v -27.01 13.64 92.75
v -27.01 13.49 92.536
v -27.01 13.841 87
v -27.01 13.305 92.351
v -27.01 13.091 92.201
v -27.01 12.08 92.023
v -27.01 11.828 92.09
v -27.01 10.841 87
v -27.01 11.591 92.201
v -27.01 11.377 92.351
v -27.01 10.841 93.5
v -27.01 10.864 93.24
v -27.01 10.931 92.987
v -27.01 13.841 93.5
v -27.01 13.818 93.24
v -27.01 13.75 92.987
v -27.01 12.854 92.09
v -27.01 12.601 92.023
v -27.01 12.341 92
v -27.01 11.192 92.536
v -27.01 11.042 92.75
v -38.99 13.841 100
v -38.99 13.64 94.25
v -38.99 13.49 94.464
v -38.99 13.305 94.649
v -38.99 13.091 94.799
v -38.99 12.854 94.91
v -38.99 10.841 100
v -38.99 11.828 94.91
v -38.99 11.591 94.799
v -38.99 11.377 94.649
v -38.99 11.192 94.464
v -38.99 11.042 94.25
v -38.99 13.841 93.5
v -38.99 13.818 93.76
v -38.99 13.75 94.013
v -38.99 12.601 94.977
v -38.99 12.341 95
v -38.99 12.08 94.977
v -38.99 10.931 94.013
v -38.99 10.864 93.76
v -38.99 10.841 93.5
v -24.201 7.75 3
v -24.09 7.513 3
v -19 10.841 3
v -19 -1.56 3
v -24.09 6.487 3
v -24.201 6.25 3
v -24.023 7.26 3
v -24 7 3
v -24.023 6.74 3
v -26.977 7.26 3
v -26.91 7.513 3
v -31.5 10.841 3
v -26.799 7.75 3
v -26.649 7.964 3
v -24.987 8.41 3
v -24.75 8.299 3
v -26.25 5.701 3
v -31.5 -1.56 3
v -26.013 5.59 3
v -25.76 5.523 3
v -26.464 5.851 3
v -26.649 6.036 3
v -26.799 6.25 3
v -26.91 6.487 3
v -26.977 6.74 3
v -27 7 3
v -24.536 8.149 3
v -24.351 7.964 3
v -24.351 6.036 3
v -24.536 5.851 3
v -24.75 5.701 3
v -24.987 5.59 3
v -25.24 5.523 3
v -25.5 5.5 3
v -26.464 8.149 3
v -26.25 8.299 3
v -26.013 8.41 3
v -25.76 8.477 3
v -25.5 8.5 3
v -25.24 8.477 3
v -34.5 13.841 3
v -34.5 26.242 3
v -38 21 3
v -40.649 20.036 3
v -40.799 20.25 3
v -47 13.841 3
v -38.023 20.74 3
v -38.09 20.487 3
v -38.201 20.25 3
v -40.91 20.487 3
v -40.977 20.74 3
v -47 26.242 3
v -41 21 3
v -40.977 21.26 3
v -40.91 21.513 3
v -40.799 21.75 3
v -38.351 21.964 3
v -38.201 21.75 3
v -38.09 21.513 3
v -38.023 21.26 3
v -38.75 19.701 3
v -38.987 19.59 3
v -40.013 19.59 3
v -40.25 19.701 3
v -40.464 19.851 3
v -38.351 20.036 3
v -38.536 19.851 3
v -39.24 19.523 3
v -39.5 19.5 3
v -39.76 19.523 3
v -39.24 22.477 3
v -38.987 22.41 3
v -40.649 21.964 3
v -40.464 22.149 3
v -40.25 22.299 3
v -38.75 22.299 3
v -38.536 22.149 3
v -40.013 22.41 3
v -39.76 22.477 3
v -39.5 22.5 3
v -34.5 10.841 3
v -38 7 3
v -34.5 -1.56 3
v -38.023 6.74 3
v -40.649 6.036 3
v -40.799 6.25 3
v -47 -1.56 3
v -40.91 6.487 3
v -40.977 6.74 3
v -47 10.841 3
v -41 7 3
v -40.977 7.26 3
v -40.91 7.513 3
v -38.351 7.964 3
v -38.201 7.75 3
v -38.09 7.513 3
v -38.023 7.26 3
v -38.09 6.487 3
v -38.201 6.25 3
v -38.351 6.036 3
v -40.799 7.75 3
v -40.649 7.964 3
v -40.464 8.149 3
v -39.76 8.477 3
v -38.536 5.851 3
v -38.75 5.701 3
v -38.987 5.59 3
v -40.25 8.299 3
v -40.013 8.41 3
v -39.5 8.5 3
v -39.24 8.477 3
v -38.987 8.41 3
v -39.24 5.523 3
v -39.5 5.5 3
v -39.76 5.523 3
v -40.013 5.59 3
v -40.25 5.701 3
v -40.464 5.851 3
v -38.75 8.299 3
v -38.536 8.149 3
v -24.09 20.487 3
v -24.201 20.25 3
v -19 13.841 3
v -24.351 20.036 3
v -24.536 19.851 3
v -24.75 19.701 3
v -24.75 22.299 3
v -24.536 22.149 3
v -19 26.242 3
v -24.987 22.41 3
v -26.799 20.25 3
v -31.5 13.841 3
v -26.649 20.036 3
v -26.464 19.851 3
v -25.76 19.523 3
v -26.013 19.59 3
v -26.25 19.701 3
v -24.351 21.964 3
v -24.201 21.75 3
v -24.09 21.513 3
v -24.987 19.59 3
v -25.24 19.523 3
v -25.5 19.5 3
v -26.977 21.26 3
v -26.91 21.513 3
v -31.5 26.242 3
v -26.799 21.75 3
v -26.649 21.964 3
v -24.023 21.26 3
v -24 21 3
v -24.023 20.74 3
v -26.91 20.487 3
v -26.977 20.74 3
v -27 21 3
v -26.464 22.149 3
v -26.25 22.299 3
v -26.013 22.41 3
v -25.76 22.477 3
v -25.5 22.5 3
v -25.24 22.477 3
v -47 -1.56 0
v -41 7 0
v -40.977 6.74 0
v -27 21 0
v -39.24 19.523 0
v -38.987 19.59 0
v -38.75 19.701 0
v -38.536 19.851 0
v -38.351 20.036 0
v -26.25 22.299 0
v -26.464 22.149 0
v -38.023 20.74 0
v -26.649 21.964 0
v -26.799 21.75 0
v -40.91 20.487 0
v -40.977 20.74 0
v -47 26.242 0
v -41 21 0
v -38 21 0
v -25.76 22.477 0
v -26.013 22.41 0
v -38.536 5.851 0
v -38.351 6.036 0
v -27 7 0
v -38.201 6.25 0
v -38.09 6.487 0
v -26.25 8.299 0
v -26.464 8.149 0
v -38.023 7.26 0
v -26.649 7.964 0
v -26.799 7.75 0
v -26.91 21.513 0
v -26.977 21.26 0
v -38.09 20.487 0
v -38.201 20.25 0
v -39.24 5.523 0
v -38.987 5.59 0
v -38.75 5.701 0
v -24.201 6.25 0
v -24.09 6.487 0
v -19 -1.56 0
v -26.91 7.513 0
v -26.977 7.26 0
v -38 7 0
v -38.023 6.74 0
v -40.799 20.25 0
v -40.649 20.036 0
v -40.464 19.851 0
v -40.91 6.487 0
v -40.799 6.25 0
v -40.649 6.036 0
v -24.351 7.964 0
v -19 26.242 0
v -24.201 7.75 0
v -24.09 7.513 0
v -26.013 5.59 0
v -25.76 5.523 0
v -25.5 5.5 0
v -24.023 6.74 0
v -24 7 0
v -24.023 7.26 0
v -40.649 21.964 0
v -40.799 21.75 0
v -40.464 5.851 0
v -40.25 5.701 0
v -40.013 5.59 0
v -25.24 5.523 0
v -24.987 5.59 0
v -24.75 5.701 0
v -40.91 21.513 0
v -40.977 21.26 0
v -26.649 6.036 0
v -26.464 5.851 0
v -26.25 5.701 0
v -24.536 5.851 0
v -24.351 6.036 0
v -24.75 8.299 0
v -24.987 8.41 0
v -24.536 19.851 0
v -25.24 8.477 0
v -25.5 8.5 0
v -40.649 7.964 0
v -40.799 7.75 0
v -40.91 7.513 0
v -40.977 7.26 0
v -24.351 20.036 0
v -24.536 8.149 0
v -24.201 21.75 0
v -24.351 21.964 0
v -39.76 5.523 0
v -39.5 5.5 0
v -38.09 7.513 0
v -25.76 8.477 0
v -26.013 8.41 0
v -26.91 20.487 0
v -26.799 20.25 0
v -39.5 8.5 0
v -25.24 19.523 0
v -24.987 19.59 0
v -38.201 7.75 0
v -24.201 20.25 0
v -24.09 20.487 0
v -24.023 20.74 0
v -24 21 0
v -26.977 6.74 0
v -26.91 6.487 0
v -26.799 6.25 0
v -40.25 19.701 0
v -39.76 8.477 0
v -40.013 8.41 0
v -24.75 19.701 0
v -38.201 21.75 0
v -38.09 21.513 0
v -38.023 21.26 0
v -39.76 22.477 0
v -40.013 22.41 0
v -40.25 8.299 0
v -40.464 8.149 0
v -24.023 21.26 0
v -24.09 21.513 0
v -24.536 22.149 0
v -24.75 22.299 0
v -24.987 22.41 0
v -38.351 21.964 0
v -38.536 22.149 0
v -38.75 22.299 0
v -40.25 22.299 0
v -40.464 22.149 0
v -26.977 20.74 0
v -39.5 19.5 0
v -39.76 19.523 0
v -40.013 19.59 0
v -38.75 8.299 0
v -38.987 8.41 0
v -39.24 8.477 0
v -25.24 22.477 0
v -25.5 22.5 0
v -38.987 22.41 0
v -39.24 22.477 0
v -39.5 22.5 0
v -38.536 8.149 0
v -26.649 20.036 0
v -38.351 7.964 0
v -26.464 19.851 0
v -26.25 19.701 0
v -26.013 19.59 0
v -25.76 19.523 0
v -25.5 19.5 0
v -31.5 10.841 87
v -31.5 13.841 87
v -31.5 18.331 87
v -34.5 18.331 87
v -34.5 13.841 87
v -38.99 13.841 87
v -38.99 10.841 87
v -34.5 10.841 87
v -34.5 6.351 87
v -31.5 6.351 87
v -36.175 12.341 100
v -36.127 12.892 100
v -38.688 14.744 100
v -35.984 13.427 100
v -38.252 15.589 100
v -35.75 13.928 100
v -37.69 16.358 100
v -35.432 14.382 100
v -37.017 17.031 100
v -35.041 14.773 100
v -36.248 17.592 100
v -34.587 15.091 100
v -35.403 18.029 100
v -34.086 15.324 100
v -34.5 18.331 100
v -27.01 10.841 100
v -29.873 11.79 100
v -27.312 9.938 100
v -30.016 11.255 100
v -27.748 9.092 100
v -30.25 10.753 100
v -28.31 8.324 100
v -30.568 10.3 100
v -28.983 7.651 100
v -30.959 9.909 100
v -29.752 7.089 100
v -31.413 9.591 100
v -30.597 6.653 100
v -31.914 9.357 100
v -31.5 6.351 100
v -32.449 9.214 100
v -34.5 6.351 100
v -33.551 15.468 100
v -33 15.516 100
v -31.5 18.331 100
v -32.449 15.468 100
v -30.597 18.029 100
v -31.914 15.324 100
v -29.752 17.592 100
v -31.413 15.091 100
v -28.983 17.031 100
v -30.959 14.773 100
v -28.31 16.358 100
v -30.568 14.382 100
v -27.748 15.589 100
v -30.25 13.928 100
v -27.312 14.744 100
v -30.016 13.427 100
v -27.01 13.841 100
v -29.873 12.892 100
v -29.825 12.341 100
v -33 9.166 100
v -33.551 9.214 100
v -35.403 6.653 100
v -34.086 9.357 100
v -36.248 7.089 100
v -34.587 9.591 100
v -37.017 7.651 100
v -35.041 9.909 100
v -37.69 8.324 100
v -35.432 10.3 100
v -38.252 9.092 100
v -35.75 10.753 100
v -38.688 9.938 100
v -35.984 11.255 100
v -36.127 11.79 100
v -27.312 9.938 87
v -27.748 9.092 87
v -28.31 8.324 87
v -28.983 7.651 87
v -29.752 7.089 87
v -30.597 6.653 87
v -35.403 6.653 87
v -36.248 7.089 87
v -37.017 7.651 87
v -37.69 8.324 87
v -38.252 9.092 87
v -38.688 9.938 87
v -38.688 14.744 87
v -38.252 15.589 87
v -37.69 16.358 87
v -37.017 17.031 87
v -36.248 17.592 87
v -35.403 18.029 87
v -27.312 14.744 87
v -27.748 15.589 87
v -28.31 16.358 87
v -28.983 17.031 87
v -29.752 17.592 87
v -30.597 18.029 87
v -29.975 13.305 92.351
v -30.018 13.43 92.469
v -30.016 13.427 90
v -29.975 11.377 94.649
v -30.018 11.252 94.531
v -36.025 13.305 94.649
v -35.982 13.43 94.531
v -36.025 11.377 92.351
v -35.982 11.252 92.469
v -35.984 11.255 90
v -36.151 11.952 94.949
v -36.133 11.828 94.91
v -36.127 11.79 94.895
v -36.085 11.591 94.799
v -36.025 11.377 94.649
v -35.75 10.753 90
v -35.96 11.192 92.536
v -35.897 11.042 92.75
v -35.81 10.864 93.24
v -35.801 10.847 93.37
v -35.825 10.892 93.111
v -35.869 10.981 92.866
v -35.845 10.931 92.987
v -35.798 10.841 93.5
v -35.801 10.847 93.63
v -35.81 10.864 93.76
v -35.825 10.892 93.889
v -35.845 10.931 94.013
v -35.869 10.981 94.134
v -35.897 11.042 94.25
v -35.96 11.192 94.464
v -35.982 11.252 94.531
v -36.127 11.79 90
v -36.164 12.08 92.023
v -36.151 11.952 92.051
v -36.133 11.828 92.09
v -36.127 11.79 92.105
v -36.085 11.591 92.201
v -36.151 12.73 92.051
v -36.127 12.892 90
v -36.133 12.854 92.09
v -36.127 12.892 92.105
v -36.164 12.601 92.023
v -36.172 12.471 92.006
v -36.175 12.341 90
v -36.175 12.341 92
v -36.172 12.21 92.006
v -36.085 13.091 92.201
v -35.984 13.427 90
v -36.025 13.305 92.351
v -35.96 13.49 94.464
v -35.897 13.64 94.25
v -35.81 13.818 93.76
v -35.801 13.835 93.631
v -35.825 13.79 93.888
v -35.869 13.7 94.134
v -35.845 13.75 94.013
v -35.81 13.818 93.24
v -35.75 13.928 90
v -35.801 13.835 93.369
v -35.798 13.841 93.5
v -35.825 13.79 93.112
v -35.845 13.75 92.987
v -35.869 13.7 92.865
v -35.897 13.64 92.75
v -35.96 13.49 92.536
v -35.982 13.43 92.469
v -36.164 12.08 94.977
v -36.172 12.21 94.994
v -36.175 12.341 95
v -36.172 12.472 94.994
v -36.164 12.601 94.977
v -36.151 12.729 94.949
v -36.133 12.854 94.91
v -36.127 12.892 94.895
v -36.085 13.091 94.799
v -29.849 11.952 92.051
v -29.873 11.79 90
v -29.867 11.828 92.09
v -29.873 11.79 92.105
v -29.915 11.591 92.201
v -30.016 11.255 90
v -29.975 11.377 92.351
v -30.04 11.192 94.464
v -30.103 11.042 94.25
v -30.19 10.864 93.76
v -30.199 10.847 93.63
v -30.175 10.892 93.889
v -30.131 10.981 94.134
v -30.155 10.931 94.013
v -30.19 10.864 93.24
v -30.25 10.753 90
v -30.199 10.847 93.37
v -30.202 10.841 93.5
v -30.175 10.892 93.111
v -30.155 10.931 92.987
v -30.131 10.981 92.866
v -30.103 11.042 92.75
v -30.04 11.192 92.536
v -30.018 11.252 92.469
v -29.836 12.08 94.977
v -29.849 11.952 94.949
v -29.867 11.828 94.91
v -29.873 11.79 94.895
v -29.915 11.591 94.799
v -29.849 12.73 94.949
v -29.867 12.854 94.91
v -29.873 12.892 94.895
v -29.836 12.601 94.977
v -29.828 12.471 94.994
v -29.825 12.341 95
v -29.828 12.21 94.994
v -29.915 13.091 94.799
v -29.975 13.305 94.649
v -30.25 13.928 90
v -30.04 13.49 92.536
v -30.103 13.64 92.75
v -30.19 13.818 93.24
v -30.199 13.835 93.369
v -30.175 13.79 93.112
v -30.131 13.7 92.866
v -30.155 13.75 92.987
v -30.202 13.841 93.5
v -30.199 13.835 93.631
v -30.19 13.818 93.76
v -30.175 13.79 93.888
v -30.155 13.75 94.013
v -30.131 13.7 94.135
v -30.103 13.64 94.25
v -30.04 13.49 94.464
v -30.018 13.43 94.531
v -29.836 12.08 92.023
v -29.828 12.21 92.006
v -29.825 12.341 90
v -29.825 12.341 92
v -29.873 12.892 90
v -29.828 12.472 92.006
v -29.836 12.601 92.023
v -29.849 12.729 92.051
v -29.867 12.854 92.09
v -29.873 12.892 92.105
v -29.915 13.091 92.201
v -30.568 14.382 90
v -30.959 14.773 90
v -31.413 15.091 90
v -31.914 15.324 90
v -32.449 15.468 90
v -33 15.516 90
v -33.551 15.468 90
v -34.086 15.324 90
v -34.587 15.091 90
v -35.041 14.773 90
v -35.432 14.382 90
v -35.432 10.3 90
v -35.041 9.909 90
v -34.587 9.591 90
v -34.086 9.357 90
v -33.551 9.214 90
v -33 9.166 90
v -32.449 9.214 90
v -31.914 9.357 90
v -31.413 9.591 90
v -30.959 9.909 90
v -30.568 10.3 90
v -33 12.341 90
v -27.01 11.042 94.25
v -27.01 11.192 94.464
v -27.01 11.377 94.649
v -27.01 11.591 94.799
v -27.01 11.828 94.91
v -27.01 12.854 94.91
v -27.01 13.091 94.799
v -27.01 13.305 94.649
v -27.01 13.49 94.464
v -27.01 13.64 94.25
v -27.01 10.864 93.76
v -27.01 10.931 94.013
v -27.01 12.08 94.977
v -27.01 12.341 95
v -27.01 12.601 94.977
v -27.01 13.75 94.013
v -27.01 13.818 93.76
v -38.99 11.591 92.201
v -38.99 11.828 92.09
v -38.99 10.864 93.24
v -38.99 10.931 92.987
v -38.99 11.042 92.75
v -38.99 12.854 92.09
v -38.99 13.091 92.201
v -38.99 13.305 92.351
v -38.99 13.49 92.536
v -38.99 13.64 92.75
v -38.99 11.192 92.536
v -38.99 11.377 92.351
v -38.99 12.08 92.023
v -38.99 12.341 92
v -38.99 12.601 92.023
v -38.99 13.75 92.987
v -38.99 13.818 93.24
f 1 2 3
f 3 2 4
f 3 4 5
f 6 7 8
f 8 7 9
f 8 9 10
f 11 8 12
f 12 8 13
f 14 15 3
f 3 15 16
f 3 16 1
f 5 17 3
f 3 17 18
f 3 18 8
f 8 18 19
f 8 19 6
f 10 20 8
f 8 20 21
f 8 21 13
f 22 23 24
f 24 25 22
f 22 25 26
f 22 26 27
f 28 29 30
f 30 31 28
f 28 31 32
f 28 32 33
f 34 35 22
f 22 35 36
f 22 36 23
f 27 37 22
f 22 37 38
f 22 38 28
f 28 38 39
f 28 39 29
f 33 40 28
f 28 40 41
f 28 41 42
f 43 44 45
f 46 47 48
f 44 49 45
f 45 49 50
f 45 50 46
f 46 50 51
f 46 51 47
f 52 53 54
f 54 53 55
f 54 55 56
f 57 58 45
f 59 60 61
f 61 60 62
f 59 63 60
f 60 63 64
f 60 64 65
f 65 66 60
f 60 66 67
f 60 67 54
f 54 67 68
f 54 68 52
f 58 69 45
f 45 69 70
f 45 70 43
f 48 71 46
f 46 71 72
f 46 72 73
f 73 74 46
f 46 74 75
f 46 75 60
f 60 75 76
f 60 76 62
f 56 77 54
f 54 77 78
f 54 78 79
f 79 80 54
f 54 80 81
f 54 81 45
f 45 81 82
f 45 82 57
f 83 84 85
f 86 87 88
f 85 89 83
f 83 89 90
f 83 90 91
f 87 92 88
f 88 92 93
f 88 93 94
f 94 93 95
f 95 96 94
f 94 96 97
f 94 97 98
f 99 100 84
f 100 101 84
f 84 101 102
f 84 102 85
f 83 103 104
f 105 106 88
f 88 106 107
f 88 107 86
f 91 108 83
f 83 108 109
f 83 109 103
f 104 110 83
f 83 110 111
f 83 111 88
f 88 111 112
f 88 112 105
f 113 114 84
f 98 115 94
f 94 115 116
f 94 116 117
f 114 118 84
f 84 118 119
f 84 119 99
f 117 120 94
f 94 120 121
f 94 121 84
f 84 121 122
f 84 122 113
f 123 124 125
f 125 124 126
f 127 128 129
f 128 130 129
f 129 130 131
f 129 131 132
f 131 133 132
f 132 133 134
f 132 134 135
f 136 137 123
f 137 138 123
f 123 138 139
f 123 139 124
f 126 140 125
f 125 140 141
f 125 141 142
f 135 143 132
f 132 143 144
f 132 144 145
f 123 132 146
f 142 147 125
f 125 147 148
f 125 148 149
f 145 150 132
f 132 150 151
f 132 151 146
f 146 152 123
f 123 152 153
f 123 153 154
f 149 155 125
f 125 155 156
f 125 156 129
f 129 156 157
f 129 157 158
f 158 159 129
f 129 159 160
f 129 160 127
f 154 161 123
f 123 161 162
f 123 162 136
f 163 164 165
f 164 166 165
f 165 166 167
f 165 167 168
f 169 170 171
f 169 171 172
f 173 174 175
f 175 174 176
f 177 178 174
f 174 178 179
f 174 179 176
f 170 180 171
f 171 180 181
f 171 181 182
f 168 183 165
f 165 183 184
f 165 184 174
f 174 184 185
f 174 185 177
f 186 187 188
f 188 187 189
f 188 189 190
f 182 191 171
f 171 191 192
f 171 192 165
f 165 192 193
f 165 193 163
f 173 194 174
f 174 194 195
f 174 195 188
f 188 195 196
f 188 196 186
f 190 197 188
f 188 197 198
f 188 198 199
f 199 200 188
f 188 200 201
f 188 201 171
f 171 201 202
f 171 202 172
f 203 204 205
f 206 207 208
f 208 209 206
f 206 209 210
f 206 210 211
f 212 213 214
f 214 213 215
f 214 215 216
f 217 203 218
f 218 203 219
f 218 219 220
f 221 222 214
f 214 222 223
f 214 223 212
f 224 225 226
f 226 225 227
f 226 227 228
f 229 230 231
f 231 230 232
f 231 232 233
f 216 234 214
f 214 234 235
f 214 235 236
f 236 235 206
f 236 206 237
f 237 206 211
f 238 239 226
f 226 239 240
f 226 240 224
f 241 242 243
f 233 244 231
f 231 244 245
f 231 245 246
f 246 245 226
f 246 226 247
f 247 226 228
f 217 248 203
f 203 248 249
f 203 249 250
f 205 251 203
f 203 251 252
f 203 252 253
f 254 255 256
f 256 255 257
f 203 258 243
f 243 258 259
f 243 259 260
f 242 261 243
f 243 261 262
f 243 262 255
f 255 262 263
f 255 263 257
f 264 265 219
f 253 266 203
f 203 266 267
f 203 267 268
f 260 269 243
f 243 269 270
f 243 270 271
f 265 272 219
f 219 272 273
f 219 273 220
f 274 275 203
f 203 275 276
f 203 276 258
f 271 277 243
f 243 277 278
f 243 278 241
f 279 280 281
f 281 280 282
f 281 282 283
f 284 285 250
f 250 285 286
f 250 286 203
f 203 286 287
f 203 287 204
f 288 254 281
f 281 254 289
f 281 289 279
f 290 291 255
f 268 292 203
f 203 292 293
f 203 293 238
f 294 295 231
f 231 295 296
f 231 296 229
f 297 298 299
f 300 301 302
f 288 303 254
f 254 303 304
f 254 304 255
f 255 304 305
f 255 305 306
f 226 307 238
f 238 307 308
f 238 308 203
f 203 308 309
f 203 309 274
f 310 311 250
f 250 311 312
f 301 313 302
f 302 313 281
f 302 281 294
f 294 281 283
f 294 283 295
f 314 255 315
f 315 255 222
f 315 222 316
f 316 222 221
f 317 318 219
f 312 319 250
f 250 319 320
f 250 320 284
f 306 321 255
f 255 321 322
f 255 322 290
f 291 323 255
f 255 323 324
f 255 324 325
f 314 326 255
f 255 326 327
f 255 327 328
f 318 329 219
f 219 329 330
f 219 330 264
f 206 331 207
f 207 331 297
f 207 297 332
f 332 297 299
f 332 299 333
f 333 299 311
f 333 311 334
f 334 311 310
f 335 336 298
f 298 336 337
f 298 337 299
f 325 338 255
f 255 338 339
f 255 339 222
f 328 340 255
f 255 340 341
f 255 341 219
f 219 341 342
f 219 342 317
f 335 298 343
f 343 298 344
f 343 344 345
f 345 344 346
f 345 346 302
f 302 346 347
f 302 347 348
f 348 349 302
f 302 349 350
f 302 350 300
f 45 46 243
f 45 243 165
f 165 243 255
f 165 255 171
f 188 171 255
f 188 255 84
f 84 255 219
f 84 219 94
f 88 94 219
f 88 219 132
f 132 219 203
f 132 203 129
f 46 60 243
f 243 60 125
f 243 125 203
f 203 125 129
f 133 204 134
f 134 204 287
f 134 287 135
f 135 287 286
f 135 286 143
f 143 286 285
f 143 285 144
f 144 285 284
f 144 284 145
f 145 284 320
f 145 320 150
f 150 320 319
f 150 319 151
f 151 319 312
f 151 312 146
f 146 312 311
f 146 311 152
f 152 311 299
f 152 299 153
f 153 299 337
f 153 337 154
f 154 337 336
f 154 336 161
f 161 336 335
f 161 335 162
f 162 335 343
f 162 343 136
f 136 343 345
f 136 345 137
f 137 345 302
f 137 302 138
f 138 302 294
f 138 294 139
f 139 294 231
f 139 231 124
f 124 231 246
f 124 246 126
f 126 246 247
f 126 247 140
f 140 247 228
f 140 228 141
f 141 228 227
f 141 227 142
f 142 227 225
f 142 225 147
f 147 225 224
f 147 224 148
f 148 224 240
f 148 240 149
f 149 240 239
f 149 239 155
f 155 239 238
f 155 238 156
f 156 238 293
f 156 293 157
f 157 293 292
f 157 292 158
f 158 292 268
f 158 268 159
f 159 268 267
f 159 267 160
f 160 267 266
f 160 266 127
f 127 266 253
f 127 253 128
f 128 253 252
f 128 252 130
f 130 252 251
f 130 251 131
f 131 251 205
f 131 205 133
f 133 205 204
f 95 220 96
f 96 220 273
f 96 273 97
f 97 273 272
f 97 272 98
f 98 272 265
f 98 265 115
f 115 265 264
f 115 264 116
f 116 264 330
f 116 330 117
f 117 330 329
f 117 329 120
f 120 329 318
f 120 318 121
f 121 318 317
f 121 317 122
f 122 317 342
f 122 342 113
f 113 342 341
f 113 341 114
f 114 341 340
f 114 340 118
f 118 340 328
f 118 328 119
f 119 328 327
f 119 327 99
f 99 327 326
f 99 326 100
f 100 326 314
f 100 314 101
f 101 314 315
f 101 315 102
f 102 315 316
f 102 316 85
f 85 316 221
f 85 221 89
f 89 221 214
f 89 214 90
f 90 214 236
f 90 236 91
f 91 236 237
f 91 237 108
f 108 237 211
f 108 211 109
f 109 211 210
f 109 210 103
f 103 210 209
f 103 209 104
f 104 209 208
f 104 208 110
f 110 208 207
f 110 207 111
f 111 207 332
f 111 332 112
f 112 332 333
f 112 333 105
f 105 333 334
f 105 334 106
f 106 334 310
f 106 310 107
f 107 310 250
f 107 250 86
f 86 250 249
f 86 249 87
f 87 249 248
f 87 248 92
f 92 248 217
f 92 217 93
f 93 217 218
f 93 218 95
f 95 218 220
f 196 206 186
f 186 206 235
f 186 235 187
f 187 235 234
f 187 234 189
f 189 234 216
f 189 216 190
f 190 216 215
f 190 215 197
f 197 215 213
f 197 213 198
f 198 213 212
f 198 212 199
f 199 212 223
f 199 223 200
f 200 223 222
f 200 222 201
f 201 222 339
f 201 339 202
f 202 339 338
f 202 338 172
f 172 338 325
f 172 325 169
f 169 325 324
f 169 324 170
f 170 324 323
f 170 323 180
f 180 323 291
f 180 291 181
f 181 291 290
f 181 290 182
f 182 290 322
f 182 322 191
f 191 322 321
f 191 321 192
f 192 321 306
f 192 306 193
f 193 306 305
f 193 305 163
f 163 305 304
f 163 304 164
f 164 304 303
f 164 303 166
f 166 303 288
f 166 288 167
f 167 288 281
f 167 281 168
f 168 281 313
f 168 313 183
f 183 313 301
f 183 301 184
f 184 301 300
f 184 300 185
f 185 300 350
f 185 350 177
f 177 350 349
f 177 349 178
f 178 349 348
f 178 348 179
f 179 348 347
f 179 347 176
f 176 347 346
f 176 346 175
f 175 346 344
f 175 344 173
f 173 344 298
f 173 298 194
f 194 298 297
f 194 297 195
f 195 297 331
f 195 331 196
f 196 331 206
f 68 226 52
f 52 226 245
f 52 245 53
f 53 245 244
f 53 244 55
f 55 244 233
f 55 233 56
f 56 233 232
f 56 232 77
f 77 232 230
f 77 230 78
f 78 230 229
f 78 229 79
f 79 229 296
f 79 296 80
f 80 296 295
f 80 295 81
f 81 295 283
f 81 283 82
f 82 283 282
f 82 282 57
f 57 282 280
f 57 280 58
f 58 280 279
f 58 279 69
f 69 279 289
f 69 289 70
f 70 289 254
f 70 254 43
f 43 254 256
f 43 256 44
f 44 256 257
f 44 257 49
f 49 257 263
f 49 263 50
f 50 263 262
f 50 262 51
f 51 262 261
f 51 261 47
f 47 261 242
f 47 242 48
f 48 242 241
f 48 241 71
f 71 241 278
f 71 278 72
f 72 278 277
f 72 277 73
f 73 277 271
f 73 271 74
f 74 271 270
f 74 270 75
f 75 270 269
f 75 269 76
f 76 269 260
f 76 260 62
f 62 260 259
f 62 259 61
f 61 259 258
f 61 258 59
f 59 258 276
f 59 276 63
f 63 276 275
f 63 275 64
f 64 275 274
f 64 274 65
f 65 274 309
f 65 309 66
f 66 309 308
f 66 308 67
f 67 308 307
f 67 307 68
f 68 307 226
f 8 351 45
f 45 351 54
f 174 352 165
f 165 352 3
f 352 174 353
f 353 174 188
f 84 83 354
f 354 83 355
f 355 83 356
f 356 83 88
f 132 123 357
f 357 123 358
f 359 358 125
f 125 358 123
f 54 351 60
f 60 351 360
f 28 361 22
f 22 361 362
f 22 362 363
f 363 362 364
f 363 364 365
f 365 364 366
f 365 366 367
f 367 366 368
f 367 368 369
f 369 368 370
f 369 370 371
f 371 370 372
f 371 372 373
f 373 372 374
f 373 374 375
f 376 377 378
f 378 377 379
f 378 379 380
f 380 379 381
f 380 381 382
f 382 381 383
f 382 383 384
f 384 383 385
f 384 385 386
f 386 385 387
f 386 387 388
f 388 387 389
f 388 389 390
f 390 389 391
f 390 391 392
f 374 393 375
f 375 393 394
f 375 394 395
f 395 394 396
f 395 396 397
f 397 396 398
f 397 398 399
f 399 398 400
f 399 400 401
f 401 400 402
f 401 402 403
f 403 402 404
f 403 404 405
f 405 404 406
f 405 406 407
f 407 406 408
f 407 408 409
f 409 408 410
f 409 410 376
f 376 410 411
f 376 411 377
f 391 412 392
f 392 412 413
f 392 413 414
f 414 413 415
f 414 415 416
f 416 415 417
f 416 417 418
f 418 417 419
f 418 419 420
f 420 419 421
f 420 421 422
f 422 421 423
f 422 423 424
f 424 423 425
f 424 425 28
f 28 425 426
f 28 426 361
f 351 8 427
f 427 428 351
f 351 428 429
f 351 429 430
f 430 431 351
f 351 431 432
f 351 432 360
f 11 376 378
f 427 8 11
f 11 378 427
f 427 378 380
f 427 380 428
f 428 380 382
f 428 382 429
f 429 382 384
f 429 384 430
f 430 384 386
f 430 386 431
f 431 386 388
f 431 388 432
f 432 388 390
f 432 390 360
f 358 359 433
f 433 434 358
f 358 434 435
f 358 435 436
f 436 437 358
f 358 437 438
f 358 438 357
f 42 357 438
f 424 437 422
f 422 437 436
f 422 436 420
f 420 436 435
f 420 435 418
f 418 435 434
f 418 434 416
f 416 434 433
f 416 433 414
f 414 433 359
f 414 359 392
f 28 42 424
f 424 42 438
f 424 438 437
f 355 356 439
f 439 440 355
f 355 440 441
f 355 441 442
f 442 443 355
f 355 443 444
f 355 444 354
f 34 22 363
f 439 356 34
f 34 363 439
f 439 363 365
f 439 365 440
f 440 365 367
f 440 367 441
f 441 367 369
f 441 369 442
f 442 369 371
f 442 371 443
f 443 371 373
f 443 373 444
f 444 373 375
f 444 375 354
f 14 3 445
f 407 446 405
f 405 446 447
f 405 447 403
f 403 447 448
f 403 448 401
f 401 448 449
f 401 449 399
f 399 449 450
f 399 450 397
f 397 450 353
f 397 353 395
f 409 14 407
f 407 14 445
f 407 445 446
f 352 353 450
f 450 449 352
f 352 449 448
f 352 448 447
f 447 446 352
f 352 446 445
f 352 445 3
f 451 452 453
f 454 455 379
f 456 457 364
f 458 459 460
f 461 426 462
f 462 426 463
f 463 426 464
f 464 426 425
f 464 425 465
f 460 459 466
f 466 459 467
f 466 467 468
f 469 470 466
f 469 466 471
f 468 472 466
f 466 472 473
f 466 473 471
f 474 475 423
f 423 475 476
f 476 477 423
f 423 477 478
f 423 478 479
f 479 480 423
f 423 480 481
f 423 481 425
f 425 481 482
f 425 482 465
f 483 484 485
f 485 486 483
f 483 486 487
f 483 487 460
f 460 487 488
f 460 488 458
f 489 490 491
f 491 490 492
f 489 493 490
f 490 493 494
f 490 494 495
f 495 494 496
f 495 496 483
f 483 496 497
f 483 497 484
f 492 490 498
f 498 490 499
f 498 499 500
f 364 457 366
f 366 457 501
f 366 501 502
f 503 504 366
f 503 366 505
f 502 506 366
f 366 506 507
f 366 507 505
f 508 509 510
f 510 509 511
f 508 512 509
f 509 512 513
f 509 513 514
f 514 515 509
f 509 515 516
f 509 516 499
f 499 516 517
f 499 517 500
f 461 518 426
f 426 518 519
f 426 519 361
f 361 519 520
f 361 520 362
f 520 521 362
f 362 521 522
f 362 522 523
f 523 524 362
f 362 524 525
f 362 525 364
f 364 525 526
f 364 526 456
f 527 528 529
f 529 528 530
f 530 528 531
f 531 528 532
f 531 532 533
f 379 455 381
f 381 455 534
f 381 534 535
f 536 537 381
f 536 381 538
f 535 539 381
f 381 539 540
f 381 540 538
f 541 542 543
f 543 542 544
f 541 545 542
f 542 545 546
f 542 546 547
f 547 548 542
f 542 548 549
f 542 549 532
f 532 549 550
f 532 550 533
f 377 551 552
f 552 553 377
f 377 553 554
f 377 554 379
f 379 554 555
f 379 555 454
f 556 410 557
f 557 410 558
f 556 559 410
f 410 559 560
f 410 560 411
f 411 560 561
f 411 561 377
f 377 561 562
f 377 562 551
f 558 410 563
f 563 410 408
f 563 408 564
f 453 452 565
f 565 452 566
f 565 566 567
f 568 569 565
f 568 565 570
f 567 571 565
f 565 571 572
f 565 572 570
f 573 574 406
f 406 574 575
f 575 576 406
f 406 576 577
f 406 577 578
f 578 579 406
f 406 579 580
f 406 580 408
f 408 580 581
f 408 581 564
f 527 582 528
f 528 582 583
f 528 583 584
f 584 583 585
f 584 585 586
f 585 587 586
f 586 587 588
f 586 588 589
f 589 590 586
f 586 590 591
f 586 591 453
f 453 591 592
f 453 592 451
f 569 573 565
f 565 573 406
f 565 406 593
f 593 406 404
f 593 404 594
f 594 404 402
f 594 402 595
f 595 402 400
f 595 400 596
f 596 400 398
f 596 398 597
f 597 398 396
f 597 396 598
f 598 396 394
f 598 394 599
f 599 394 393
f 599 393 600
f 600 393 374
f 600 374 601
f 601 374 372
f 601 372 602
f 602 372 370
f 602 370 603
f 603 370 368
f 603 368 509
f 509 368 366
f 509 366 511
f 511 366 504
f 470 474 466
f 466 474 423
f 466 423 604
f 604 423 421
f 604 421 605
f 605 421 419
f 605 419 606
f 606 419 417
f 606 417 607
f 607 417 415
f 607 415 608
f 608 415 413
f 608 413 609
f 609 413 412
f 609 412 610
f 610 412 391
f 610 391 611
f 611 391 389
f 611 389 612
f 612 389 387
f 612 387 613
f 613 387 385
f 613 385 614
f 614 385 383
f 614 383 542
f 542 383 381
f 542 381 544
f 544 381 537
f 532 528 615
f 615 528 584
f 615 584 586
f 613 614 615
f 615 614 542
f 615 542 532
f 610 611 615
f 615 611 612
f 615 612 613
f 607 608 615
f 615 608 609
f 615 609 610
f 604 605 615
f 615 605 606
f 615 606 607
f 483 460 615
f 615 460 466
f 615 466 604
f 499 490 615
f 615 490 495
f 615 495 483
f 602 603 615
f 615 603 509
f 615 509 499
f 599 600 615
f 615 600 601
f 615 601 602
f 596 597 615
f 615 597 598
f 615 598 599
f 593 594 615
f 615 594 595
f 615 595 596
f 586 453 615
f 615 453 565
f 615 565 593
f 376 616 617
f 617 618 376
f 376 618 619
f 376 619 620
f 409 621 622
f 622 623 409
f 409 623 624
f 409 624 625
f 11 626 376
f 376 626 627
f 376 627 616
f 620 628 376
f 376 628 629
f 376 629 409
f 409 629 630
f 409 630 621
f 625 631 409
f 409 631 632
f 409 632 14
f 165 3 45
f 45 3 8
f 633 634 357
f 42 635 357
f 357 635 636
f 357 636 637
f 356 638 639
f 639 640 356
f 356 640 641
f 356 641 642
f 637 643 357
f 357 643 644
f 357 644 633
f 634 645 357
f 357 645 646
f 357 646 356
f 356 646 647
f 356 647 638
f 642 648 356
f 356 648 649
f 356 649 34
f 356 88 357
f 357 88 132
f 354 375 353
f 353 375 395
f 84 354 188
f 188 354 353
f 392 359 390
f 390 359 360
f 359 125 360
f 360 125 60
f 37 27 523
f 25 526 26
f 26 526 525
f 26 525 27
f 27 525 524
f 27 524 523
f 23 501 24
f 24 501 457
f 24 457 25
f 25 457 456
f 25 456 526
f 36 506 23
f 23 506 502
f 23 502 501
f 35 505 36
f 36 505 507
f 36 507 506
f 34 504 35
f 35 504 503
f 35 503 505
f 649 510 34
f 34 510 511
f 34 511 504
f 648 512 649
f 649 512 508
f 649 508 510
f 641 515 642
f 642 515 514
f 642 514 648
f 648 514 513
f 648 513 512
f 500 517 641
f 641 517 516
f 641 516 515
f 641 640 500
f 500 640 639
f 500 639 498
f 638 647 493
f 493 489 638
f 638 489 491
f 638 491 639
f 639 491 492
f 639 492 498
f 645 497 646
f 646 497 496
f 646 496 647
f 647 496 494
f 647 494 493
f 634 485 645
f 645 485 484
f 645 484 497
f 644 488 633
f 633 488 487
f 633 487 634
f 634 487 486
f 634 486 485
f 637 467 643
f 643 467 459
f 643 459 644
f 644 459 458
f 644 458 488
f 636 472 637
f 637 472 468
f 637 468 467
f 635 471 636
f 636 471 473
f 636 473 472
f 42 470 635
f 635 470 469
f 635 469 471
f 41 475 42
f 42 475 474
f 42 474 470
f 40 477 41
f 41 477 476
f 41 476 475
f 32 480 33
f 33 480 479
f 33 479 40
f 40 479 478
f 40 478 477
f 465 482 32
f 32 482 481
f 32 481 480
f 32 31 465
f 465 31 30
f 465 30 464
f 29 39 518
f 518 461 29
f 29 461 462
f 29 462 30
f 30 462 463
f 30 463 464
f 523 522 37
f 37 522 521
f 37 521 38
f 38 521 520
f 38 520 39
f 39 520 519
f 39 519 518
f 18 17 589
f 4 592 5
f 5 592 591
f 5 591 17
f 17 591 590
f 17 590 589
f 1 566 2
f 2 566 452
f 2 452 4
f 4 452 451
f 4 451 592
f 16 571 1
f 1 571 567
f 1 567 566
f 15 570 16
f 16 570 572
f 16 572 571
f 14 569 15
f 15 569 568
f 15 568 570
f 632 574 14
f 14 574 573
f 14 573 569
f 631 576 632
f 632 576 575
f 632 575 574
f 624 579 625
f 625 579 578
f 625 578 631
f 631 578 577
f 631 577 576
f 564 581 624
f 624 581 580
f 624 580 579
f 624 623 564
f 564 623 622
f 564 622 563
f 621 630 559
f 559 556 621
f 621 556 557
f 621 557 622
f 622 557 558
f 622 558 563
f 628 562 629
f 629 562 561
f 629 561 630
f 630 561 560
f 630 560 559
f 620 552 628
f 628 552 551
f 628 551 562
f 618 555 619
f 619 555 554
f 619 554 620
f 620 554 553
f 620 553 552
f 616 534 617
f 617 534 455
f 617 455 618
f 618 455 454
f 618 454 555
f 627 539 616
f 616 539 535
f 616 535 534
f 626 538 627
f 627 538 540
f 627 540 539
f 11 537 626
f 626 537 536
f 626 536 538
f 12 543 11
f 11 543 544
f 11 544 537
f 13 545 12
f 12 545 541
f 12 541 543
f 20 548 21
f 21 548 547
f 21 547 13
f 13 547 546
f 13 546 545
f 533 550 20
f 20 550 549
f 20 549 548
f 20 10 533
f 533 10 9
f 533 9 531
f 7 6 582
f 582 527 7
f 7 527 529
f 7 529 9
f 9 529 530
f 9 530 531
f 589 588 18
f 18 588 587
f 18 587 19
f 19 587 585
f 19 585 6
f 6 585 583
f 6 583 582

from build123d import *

# Parameters (mm, degrees)
CROQUIS1_W              = 28
CROQUIS1_H              = 27.802688173
CROQUIS1_R              = 1.5
SALIENTE_EXTRUIR1_DEPTH = 3
CROQUIS2_W              = 3
CROQUIS2_H              = 12.401344086
CROQUIS2_H_2            = 3
CROQUIS2_H_3            = 12.401344087
CROQUIS2_W_2            = 12.5
SALIENTE_EXTRUIR2_DEPTH = 100
CROQUIS3_R              = 6.175
SALIENTE_EXTRUIR3_DEPTH = 13
CORTAR_EXTRUIR6_START   = 100
CROQUIS4_R              = 3.175
CORTAR_EXTRUIR6_DEPTH   = 10
CORTAR_EXTRUIR7_START   = 10.840894
CORTAR_EXTRUIR7_DEPTH   = 3
CORTAR_EXTRUIR8_START   = -31.5
CORTAR_EXTRUIR8_DEPTH   = 3
CROQUIS14_R             = 1.5
CORTAR_EXTRUIR9_DEPTH   = 12


with BuildPart() as part:
    # Croquis1 → Saliente-Extruir1 (new body)
    with BuildSketch(Plane.XY):
        with Locations((-33, 12.340894038)):
            Rectangle(CROQUIS1_W, CROQUIS1_H)
        with Locations((-39.5, 7)):
            Circle(CROQUIS1_R, mode=Mode.SUBTRACT)
        with Locations((-39.5, 21)):
            Circle(CROQUIS1_R, mode=Mode.SUBTRACT)
        with Locations((-25.5, 21)):
            Circle(CROQUIS1_R, mode=Mode.SUBTRACT)
        with Locations((-25.5, 7)):
            Circle(CROQUIS1_R, mode=Mode.SUBTRACT)
    extrude(amount=SALIENTE_EXTRUIR1_DEPTH)

    # Croquis2 → Saliente-Extruir2 (add)
    with BuildSketch(Plane.XY):
        with Locations((-33, 4.640221994)):
            Rectangle(CROQUIS2_W, CROQUIS2_H)
        with Locations((-33, 12.340894037)):
            Rectangle(CROQUIS2_W, CROQUIS2_H_2)
        with Locations((-33, 20.041566081)):
            Rectangle(CROQUIS2_W, CROQUIS2_H_3)
        with Locations((-25.25, 12.340894037)):
            Rectangle(CROQUIS2_W_2, CROQUIS2_H_2)
        with Locations((-40.75, 12.340894037)):
            Rectangle(CROQUIS2_W_2, CROQUIS2_H_2)
    extrude(amount=SALIENTE_EXTRUIR2_DEPTH)

    # Croquis3 → Saliente-Extruir3 (add)
    with BuildSketch(Plane.XY.offset(100)):
        with Locations((-33, 12.340894037)):
            Circle(CROQUIS3_R)
    extrude(amount=-SALIENTE_EXTRUIR3_DEPTH)

    # Croquis4 → Cortar-Extruir6 (cut)
    with BuildSketch(Plane.XY.offset(CORTAR_EXTRUIR6_START)):
        with Locations((-33, 12.340894037)):
            Circle(CROQUIS4_R)
    extrude(amount=-CORTAR_EXTRUIR6_DEPTH, mode=Mode.SUBTRACT)

    # Croquis12 → Cortar-Extruir7 (cut)
    with BuildSketch(Plane(origin=(0, 0, 0), x_dir=(1, 0, 0), z_dir=(0, 1, 0)).offset(CORTAR_EXTRUIR7_START)):
        Polygon((-47, -3), (-38.990043823, -87), (-38.990043823, -100), (-47, -100), align=None)
        Polygon((-19, -3), (-19, -100), (-27.009956177, -100), (-27.009956177, -87), align=None)
    extrude(amount=CORTAR_EXTRUIR7_DEPTH, mode=Mode.SUBTRACT)

    # Croquis13 → Cortar-Extruir8 (cut)
    with BuildSketch(Plane(origin=(0, 0, 0), x_dir=(0, 0, -1), z_dir=(1, 0, 0)).offset(CORTAR_EXTRUIR8_START)):
        Polygon((-100, 18.33093786), (-87, 18.33093786), (-3, 26.242238124), (-100, 26.242238124), align=None)
        Polygon((-100, -1.560450049), (-100, 6.350850214), (-87, 6.350850214), (-3, -1.560450049), align=None)
    extrude(amount=-CORTAR_EXTRUIR8_DEPTH, mode=Mode.SUBTRACT)

    # Croquis14 → Cortar-Extruir9 (cut)
    with BuildSketch(Plane.ZY.offset(38.990043823)):
        with Locations((93.5, 12.340894037)):
            Circle(CROQUIS14_R)
    extrude(amount=-CORTAR_EXTRUIR9_DEPTH, mode=Mode.SUBTRACT)


solid = part.part
